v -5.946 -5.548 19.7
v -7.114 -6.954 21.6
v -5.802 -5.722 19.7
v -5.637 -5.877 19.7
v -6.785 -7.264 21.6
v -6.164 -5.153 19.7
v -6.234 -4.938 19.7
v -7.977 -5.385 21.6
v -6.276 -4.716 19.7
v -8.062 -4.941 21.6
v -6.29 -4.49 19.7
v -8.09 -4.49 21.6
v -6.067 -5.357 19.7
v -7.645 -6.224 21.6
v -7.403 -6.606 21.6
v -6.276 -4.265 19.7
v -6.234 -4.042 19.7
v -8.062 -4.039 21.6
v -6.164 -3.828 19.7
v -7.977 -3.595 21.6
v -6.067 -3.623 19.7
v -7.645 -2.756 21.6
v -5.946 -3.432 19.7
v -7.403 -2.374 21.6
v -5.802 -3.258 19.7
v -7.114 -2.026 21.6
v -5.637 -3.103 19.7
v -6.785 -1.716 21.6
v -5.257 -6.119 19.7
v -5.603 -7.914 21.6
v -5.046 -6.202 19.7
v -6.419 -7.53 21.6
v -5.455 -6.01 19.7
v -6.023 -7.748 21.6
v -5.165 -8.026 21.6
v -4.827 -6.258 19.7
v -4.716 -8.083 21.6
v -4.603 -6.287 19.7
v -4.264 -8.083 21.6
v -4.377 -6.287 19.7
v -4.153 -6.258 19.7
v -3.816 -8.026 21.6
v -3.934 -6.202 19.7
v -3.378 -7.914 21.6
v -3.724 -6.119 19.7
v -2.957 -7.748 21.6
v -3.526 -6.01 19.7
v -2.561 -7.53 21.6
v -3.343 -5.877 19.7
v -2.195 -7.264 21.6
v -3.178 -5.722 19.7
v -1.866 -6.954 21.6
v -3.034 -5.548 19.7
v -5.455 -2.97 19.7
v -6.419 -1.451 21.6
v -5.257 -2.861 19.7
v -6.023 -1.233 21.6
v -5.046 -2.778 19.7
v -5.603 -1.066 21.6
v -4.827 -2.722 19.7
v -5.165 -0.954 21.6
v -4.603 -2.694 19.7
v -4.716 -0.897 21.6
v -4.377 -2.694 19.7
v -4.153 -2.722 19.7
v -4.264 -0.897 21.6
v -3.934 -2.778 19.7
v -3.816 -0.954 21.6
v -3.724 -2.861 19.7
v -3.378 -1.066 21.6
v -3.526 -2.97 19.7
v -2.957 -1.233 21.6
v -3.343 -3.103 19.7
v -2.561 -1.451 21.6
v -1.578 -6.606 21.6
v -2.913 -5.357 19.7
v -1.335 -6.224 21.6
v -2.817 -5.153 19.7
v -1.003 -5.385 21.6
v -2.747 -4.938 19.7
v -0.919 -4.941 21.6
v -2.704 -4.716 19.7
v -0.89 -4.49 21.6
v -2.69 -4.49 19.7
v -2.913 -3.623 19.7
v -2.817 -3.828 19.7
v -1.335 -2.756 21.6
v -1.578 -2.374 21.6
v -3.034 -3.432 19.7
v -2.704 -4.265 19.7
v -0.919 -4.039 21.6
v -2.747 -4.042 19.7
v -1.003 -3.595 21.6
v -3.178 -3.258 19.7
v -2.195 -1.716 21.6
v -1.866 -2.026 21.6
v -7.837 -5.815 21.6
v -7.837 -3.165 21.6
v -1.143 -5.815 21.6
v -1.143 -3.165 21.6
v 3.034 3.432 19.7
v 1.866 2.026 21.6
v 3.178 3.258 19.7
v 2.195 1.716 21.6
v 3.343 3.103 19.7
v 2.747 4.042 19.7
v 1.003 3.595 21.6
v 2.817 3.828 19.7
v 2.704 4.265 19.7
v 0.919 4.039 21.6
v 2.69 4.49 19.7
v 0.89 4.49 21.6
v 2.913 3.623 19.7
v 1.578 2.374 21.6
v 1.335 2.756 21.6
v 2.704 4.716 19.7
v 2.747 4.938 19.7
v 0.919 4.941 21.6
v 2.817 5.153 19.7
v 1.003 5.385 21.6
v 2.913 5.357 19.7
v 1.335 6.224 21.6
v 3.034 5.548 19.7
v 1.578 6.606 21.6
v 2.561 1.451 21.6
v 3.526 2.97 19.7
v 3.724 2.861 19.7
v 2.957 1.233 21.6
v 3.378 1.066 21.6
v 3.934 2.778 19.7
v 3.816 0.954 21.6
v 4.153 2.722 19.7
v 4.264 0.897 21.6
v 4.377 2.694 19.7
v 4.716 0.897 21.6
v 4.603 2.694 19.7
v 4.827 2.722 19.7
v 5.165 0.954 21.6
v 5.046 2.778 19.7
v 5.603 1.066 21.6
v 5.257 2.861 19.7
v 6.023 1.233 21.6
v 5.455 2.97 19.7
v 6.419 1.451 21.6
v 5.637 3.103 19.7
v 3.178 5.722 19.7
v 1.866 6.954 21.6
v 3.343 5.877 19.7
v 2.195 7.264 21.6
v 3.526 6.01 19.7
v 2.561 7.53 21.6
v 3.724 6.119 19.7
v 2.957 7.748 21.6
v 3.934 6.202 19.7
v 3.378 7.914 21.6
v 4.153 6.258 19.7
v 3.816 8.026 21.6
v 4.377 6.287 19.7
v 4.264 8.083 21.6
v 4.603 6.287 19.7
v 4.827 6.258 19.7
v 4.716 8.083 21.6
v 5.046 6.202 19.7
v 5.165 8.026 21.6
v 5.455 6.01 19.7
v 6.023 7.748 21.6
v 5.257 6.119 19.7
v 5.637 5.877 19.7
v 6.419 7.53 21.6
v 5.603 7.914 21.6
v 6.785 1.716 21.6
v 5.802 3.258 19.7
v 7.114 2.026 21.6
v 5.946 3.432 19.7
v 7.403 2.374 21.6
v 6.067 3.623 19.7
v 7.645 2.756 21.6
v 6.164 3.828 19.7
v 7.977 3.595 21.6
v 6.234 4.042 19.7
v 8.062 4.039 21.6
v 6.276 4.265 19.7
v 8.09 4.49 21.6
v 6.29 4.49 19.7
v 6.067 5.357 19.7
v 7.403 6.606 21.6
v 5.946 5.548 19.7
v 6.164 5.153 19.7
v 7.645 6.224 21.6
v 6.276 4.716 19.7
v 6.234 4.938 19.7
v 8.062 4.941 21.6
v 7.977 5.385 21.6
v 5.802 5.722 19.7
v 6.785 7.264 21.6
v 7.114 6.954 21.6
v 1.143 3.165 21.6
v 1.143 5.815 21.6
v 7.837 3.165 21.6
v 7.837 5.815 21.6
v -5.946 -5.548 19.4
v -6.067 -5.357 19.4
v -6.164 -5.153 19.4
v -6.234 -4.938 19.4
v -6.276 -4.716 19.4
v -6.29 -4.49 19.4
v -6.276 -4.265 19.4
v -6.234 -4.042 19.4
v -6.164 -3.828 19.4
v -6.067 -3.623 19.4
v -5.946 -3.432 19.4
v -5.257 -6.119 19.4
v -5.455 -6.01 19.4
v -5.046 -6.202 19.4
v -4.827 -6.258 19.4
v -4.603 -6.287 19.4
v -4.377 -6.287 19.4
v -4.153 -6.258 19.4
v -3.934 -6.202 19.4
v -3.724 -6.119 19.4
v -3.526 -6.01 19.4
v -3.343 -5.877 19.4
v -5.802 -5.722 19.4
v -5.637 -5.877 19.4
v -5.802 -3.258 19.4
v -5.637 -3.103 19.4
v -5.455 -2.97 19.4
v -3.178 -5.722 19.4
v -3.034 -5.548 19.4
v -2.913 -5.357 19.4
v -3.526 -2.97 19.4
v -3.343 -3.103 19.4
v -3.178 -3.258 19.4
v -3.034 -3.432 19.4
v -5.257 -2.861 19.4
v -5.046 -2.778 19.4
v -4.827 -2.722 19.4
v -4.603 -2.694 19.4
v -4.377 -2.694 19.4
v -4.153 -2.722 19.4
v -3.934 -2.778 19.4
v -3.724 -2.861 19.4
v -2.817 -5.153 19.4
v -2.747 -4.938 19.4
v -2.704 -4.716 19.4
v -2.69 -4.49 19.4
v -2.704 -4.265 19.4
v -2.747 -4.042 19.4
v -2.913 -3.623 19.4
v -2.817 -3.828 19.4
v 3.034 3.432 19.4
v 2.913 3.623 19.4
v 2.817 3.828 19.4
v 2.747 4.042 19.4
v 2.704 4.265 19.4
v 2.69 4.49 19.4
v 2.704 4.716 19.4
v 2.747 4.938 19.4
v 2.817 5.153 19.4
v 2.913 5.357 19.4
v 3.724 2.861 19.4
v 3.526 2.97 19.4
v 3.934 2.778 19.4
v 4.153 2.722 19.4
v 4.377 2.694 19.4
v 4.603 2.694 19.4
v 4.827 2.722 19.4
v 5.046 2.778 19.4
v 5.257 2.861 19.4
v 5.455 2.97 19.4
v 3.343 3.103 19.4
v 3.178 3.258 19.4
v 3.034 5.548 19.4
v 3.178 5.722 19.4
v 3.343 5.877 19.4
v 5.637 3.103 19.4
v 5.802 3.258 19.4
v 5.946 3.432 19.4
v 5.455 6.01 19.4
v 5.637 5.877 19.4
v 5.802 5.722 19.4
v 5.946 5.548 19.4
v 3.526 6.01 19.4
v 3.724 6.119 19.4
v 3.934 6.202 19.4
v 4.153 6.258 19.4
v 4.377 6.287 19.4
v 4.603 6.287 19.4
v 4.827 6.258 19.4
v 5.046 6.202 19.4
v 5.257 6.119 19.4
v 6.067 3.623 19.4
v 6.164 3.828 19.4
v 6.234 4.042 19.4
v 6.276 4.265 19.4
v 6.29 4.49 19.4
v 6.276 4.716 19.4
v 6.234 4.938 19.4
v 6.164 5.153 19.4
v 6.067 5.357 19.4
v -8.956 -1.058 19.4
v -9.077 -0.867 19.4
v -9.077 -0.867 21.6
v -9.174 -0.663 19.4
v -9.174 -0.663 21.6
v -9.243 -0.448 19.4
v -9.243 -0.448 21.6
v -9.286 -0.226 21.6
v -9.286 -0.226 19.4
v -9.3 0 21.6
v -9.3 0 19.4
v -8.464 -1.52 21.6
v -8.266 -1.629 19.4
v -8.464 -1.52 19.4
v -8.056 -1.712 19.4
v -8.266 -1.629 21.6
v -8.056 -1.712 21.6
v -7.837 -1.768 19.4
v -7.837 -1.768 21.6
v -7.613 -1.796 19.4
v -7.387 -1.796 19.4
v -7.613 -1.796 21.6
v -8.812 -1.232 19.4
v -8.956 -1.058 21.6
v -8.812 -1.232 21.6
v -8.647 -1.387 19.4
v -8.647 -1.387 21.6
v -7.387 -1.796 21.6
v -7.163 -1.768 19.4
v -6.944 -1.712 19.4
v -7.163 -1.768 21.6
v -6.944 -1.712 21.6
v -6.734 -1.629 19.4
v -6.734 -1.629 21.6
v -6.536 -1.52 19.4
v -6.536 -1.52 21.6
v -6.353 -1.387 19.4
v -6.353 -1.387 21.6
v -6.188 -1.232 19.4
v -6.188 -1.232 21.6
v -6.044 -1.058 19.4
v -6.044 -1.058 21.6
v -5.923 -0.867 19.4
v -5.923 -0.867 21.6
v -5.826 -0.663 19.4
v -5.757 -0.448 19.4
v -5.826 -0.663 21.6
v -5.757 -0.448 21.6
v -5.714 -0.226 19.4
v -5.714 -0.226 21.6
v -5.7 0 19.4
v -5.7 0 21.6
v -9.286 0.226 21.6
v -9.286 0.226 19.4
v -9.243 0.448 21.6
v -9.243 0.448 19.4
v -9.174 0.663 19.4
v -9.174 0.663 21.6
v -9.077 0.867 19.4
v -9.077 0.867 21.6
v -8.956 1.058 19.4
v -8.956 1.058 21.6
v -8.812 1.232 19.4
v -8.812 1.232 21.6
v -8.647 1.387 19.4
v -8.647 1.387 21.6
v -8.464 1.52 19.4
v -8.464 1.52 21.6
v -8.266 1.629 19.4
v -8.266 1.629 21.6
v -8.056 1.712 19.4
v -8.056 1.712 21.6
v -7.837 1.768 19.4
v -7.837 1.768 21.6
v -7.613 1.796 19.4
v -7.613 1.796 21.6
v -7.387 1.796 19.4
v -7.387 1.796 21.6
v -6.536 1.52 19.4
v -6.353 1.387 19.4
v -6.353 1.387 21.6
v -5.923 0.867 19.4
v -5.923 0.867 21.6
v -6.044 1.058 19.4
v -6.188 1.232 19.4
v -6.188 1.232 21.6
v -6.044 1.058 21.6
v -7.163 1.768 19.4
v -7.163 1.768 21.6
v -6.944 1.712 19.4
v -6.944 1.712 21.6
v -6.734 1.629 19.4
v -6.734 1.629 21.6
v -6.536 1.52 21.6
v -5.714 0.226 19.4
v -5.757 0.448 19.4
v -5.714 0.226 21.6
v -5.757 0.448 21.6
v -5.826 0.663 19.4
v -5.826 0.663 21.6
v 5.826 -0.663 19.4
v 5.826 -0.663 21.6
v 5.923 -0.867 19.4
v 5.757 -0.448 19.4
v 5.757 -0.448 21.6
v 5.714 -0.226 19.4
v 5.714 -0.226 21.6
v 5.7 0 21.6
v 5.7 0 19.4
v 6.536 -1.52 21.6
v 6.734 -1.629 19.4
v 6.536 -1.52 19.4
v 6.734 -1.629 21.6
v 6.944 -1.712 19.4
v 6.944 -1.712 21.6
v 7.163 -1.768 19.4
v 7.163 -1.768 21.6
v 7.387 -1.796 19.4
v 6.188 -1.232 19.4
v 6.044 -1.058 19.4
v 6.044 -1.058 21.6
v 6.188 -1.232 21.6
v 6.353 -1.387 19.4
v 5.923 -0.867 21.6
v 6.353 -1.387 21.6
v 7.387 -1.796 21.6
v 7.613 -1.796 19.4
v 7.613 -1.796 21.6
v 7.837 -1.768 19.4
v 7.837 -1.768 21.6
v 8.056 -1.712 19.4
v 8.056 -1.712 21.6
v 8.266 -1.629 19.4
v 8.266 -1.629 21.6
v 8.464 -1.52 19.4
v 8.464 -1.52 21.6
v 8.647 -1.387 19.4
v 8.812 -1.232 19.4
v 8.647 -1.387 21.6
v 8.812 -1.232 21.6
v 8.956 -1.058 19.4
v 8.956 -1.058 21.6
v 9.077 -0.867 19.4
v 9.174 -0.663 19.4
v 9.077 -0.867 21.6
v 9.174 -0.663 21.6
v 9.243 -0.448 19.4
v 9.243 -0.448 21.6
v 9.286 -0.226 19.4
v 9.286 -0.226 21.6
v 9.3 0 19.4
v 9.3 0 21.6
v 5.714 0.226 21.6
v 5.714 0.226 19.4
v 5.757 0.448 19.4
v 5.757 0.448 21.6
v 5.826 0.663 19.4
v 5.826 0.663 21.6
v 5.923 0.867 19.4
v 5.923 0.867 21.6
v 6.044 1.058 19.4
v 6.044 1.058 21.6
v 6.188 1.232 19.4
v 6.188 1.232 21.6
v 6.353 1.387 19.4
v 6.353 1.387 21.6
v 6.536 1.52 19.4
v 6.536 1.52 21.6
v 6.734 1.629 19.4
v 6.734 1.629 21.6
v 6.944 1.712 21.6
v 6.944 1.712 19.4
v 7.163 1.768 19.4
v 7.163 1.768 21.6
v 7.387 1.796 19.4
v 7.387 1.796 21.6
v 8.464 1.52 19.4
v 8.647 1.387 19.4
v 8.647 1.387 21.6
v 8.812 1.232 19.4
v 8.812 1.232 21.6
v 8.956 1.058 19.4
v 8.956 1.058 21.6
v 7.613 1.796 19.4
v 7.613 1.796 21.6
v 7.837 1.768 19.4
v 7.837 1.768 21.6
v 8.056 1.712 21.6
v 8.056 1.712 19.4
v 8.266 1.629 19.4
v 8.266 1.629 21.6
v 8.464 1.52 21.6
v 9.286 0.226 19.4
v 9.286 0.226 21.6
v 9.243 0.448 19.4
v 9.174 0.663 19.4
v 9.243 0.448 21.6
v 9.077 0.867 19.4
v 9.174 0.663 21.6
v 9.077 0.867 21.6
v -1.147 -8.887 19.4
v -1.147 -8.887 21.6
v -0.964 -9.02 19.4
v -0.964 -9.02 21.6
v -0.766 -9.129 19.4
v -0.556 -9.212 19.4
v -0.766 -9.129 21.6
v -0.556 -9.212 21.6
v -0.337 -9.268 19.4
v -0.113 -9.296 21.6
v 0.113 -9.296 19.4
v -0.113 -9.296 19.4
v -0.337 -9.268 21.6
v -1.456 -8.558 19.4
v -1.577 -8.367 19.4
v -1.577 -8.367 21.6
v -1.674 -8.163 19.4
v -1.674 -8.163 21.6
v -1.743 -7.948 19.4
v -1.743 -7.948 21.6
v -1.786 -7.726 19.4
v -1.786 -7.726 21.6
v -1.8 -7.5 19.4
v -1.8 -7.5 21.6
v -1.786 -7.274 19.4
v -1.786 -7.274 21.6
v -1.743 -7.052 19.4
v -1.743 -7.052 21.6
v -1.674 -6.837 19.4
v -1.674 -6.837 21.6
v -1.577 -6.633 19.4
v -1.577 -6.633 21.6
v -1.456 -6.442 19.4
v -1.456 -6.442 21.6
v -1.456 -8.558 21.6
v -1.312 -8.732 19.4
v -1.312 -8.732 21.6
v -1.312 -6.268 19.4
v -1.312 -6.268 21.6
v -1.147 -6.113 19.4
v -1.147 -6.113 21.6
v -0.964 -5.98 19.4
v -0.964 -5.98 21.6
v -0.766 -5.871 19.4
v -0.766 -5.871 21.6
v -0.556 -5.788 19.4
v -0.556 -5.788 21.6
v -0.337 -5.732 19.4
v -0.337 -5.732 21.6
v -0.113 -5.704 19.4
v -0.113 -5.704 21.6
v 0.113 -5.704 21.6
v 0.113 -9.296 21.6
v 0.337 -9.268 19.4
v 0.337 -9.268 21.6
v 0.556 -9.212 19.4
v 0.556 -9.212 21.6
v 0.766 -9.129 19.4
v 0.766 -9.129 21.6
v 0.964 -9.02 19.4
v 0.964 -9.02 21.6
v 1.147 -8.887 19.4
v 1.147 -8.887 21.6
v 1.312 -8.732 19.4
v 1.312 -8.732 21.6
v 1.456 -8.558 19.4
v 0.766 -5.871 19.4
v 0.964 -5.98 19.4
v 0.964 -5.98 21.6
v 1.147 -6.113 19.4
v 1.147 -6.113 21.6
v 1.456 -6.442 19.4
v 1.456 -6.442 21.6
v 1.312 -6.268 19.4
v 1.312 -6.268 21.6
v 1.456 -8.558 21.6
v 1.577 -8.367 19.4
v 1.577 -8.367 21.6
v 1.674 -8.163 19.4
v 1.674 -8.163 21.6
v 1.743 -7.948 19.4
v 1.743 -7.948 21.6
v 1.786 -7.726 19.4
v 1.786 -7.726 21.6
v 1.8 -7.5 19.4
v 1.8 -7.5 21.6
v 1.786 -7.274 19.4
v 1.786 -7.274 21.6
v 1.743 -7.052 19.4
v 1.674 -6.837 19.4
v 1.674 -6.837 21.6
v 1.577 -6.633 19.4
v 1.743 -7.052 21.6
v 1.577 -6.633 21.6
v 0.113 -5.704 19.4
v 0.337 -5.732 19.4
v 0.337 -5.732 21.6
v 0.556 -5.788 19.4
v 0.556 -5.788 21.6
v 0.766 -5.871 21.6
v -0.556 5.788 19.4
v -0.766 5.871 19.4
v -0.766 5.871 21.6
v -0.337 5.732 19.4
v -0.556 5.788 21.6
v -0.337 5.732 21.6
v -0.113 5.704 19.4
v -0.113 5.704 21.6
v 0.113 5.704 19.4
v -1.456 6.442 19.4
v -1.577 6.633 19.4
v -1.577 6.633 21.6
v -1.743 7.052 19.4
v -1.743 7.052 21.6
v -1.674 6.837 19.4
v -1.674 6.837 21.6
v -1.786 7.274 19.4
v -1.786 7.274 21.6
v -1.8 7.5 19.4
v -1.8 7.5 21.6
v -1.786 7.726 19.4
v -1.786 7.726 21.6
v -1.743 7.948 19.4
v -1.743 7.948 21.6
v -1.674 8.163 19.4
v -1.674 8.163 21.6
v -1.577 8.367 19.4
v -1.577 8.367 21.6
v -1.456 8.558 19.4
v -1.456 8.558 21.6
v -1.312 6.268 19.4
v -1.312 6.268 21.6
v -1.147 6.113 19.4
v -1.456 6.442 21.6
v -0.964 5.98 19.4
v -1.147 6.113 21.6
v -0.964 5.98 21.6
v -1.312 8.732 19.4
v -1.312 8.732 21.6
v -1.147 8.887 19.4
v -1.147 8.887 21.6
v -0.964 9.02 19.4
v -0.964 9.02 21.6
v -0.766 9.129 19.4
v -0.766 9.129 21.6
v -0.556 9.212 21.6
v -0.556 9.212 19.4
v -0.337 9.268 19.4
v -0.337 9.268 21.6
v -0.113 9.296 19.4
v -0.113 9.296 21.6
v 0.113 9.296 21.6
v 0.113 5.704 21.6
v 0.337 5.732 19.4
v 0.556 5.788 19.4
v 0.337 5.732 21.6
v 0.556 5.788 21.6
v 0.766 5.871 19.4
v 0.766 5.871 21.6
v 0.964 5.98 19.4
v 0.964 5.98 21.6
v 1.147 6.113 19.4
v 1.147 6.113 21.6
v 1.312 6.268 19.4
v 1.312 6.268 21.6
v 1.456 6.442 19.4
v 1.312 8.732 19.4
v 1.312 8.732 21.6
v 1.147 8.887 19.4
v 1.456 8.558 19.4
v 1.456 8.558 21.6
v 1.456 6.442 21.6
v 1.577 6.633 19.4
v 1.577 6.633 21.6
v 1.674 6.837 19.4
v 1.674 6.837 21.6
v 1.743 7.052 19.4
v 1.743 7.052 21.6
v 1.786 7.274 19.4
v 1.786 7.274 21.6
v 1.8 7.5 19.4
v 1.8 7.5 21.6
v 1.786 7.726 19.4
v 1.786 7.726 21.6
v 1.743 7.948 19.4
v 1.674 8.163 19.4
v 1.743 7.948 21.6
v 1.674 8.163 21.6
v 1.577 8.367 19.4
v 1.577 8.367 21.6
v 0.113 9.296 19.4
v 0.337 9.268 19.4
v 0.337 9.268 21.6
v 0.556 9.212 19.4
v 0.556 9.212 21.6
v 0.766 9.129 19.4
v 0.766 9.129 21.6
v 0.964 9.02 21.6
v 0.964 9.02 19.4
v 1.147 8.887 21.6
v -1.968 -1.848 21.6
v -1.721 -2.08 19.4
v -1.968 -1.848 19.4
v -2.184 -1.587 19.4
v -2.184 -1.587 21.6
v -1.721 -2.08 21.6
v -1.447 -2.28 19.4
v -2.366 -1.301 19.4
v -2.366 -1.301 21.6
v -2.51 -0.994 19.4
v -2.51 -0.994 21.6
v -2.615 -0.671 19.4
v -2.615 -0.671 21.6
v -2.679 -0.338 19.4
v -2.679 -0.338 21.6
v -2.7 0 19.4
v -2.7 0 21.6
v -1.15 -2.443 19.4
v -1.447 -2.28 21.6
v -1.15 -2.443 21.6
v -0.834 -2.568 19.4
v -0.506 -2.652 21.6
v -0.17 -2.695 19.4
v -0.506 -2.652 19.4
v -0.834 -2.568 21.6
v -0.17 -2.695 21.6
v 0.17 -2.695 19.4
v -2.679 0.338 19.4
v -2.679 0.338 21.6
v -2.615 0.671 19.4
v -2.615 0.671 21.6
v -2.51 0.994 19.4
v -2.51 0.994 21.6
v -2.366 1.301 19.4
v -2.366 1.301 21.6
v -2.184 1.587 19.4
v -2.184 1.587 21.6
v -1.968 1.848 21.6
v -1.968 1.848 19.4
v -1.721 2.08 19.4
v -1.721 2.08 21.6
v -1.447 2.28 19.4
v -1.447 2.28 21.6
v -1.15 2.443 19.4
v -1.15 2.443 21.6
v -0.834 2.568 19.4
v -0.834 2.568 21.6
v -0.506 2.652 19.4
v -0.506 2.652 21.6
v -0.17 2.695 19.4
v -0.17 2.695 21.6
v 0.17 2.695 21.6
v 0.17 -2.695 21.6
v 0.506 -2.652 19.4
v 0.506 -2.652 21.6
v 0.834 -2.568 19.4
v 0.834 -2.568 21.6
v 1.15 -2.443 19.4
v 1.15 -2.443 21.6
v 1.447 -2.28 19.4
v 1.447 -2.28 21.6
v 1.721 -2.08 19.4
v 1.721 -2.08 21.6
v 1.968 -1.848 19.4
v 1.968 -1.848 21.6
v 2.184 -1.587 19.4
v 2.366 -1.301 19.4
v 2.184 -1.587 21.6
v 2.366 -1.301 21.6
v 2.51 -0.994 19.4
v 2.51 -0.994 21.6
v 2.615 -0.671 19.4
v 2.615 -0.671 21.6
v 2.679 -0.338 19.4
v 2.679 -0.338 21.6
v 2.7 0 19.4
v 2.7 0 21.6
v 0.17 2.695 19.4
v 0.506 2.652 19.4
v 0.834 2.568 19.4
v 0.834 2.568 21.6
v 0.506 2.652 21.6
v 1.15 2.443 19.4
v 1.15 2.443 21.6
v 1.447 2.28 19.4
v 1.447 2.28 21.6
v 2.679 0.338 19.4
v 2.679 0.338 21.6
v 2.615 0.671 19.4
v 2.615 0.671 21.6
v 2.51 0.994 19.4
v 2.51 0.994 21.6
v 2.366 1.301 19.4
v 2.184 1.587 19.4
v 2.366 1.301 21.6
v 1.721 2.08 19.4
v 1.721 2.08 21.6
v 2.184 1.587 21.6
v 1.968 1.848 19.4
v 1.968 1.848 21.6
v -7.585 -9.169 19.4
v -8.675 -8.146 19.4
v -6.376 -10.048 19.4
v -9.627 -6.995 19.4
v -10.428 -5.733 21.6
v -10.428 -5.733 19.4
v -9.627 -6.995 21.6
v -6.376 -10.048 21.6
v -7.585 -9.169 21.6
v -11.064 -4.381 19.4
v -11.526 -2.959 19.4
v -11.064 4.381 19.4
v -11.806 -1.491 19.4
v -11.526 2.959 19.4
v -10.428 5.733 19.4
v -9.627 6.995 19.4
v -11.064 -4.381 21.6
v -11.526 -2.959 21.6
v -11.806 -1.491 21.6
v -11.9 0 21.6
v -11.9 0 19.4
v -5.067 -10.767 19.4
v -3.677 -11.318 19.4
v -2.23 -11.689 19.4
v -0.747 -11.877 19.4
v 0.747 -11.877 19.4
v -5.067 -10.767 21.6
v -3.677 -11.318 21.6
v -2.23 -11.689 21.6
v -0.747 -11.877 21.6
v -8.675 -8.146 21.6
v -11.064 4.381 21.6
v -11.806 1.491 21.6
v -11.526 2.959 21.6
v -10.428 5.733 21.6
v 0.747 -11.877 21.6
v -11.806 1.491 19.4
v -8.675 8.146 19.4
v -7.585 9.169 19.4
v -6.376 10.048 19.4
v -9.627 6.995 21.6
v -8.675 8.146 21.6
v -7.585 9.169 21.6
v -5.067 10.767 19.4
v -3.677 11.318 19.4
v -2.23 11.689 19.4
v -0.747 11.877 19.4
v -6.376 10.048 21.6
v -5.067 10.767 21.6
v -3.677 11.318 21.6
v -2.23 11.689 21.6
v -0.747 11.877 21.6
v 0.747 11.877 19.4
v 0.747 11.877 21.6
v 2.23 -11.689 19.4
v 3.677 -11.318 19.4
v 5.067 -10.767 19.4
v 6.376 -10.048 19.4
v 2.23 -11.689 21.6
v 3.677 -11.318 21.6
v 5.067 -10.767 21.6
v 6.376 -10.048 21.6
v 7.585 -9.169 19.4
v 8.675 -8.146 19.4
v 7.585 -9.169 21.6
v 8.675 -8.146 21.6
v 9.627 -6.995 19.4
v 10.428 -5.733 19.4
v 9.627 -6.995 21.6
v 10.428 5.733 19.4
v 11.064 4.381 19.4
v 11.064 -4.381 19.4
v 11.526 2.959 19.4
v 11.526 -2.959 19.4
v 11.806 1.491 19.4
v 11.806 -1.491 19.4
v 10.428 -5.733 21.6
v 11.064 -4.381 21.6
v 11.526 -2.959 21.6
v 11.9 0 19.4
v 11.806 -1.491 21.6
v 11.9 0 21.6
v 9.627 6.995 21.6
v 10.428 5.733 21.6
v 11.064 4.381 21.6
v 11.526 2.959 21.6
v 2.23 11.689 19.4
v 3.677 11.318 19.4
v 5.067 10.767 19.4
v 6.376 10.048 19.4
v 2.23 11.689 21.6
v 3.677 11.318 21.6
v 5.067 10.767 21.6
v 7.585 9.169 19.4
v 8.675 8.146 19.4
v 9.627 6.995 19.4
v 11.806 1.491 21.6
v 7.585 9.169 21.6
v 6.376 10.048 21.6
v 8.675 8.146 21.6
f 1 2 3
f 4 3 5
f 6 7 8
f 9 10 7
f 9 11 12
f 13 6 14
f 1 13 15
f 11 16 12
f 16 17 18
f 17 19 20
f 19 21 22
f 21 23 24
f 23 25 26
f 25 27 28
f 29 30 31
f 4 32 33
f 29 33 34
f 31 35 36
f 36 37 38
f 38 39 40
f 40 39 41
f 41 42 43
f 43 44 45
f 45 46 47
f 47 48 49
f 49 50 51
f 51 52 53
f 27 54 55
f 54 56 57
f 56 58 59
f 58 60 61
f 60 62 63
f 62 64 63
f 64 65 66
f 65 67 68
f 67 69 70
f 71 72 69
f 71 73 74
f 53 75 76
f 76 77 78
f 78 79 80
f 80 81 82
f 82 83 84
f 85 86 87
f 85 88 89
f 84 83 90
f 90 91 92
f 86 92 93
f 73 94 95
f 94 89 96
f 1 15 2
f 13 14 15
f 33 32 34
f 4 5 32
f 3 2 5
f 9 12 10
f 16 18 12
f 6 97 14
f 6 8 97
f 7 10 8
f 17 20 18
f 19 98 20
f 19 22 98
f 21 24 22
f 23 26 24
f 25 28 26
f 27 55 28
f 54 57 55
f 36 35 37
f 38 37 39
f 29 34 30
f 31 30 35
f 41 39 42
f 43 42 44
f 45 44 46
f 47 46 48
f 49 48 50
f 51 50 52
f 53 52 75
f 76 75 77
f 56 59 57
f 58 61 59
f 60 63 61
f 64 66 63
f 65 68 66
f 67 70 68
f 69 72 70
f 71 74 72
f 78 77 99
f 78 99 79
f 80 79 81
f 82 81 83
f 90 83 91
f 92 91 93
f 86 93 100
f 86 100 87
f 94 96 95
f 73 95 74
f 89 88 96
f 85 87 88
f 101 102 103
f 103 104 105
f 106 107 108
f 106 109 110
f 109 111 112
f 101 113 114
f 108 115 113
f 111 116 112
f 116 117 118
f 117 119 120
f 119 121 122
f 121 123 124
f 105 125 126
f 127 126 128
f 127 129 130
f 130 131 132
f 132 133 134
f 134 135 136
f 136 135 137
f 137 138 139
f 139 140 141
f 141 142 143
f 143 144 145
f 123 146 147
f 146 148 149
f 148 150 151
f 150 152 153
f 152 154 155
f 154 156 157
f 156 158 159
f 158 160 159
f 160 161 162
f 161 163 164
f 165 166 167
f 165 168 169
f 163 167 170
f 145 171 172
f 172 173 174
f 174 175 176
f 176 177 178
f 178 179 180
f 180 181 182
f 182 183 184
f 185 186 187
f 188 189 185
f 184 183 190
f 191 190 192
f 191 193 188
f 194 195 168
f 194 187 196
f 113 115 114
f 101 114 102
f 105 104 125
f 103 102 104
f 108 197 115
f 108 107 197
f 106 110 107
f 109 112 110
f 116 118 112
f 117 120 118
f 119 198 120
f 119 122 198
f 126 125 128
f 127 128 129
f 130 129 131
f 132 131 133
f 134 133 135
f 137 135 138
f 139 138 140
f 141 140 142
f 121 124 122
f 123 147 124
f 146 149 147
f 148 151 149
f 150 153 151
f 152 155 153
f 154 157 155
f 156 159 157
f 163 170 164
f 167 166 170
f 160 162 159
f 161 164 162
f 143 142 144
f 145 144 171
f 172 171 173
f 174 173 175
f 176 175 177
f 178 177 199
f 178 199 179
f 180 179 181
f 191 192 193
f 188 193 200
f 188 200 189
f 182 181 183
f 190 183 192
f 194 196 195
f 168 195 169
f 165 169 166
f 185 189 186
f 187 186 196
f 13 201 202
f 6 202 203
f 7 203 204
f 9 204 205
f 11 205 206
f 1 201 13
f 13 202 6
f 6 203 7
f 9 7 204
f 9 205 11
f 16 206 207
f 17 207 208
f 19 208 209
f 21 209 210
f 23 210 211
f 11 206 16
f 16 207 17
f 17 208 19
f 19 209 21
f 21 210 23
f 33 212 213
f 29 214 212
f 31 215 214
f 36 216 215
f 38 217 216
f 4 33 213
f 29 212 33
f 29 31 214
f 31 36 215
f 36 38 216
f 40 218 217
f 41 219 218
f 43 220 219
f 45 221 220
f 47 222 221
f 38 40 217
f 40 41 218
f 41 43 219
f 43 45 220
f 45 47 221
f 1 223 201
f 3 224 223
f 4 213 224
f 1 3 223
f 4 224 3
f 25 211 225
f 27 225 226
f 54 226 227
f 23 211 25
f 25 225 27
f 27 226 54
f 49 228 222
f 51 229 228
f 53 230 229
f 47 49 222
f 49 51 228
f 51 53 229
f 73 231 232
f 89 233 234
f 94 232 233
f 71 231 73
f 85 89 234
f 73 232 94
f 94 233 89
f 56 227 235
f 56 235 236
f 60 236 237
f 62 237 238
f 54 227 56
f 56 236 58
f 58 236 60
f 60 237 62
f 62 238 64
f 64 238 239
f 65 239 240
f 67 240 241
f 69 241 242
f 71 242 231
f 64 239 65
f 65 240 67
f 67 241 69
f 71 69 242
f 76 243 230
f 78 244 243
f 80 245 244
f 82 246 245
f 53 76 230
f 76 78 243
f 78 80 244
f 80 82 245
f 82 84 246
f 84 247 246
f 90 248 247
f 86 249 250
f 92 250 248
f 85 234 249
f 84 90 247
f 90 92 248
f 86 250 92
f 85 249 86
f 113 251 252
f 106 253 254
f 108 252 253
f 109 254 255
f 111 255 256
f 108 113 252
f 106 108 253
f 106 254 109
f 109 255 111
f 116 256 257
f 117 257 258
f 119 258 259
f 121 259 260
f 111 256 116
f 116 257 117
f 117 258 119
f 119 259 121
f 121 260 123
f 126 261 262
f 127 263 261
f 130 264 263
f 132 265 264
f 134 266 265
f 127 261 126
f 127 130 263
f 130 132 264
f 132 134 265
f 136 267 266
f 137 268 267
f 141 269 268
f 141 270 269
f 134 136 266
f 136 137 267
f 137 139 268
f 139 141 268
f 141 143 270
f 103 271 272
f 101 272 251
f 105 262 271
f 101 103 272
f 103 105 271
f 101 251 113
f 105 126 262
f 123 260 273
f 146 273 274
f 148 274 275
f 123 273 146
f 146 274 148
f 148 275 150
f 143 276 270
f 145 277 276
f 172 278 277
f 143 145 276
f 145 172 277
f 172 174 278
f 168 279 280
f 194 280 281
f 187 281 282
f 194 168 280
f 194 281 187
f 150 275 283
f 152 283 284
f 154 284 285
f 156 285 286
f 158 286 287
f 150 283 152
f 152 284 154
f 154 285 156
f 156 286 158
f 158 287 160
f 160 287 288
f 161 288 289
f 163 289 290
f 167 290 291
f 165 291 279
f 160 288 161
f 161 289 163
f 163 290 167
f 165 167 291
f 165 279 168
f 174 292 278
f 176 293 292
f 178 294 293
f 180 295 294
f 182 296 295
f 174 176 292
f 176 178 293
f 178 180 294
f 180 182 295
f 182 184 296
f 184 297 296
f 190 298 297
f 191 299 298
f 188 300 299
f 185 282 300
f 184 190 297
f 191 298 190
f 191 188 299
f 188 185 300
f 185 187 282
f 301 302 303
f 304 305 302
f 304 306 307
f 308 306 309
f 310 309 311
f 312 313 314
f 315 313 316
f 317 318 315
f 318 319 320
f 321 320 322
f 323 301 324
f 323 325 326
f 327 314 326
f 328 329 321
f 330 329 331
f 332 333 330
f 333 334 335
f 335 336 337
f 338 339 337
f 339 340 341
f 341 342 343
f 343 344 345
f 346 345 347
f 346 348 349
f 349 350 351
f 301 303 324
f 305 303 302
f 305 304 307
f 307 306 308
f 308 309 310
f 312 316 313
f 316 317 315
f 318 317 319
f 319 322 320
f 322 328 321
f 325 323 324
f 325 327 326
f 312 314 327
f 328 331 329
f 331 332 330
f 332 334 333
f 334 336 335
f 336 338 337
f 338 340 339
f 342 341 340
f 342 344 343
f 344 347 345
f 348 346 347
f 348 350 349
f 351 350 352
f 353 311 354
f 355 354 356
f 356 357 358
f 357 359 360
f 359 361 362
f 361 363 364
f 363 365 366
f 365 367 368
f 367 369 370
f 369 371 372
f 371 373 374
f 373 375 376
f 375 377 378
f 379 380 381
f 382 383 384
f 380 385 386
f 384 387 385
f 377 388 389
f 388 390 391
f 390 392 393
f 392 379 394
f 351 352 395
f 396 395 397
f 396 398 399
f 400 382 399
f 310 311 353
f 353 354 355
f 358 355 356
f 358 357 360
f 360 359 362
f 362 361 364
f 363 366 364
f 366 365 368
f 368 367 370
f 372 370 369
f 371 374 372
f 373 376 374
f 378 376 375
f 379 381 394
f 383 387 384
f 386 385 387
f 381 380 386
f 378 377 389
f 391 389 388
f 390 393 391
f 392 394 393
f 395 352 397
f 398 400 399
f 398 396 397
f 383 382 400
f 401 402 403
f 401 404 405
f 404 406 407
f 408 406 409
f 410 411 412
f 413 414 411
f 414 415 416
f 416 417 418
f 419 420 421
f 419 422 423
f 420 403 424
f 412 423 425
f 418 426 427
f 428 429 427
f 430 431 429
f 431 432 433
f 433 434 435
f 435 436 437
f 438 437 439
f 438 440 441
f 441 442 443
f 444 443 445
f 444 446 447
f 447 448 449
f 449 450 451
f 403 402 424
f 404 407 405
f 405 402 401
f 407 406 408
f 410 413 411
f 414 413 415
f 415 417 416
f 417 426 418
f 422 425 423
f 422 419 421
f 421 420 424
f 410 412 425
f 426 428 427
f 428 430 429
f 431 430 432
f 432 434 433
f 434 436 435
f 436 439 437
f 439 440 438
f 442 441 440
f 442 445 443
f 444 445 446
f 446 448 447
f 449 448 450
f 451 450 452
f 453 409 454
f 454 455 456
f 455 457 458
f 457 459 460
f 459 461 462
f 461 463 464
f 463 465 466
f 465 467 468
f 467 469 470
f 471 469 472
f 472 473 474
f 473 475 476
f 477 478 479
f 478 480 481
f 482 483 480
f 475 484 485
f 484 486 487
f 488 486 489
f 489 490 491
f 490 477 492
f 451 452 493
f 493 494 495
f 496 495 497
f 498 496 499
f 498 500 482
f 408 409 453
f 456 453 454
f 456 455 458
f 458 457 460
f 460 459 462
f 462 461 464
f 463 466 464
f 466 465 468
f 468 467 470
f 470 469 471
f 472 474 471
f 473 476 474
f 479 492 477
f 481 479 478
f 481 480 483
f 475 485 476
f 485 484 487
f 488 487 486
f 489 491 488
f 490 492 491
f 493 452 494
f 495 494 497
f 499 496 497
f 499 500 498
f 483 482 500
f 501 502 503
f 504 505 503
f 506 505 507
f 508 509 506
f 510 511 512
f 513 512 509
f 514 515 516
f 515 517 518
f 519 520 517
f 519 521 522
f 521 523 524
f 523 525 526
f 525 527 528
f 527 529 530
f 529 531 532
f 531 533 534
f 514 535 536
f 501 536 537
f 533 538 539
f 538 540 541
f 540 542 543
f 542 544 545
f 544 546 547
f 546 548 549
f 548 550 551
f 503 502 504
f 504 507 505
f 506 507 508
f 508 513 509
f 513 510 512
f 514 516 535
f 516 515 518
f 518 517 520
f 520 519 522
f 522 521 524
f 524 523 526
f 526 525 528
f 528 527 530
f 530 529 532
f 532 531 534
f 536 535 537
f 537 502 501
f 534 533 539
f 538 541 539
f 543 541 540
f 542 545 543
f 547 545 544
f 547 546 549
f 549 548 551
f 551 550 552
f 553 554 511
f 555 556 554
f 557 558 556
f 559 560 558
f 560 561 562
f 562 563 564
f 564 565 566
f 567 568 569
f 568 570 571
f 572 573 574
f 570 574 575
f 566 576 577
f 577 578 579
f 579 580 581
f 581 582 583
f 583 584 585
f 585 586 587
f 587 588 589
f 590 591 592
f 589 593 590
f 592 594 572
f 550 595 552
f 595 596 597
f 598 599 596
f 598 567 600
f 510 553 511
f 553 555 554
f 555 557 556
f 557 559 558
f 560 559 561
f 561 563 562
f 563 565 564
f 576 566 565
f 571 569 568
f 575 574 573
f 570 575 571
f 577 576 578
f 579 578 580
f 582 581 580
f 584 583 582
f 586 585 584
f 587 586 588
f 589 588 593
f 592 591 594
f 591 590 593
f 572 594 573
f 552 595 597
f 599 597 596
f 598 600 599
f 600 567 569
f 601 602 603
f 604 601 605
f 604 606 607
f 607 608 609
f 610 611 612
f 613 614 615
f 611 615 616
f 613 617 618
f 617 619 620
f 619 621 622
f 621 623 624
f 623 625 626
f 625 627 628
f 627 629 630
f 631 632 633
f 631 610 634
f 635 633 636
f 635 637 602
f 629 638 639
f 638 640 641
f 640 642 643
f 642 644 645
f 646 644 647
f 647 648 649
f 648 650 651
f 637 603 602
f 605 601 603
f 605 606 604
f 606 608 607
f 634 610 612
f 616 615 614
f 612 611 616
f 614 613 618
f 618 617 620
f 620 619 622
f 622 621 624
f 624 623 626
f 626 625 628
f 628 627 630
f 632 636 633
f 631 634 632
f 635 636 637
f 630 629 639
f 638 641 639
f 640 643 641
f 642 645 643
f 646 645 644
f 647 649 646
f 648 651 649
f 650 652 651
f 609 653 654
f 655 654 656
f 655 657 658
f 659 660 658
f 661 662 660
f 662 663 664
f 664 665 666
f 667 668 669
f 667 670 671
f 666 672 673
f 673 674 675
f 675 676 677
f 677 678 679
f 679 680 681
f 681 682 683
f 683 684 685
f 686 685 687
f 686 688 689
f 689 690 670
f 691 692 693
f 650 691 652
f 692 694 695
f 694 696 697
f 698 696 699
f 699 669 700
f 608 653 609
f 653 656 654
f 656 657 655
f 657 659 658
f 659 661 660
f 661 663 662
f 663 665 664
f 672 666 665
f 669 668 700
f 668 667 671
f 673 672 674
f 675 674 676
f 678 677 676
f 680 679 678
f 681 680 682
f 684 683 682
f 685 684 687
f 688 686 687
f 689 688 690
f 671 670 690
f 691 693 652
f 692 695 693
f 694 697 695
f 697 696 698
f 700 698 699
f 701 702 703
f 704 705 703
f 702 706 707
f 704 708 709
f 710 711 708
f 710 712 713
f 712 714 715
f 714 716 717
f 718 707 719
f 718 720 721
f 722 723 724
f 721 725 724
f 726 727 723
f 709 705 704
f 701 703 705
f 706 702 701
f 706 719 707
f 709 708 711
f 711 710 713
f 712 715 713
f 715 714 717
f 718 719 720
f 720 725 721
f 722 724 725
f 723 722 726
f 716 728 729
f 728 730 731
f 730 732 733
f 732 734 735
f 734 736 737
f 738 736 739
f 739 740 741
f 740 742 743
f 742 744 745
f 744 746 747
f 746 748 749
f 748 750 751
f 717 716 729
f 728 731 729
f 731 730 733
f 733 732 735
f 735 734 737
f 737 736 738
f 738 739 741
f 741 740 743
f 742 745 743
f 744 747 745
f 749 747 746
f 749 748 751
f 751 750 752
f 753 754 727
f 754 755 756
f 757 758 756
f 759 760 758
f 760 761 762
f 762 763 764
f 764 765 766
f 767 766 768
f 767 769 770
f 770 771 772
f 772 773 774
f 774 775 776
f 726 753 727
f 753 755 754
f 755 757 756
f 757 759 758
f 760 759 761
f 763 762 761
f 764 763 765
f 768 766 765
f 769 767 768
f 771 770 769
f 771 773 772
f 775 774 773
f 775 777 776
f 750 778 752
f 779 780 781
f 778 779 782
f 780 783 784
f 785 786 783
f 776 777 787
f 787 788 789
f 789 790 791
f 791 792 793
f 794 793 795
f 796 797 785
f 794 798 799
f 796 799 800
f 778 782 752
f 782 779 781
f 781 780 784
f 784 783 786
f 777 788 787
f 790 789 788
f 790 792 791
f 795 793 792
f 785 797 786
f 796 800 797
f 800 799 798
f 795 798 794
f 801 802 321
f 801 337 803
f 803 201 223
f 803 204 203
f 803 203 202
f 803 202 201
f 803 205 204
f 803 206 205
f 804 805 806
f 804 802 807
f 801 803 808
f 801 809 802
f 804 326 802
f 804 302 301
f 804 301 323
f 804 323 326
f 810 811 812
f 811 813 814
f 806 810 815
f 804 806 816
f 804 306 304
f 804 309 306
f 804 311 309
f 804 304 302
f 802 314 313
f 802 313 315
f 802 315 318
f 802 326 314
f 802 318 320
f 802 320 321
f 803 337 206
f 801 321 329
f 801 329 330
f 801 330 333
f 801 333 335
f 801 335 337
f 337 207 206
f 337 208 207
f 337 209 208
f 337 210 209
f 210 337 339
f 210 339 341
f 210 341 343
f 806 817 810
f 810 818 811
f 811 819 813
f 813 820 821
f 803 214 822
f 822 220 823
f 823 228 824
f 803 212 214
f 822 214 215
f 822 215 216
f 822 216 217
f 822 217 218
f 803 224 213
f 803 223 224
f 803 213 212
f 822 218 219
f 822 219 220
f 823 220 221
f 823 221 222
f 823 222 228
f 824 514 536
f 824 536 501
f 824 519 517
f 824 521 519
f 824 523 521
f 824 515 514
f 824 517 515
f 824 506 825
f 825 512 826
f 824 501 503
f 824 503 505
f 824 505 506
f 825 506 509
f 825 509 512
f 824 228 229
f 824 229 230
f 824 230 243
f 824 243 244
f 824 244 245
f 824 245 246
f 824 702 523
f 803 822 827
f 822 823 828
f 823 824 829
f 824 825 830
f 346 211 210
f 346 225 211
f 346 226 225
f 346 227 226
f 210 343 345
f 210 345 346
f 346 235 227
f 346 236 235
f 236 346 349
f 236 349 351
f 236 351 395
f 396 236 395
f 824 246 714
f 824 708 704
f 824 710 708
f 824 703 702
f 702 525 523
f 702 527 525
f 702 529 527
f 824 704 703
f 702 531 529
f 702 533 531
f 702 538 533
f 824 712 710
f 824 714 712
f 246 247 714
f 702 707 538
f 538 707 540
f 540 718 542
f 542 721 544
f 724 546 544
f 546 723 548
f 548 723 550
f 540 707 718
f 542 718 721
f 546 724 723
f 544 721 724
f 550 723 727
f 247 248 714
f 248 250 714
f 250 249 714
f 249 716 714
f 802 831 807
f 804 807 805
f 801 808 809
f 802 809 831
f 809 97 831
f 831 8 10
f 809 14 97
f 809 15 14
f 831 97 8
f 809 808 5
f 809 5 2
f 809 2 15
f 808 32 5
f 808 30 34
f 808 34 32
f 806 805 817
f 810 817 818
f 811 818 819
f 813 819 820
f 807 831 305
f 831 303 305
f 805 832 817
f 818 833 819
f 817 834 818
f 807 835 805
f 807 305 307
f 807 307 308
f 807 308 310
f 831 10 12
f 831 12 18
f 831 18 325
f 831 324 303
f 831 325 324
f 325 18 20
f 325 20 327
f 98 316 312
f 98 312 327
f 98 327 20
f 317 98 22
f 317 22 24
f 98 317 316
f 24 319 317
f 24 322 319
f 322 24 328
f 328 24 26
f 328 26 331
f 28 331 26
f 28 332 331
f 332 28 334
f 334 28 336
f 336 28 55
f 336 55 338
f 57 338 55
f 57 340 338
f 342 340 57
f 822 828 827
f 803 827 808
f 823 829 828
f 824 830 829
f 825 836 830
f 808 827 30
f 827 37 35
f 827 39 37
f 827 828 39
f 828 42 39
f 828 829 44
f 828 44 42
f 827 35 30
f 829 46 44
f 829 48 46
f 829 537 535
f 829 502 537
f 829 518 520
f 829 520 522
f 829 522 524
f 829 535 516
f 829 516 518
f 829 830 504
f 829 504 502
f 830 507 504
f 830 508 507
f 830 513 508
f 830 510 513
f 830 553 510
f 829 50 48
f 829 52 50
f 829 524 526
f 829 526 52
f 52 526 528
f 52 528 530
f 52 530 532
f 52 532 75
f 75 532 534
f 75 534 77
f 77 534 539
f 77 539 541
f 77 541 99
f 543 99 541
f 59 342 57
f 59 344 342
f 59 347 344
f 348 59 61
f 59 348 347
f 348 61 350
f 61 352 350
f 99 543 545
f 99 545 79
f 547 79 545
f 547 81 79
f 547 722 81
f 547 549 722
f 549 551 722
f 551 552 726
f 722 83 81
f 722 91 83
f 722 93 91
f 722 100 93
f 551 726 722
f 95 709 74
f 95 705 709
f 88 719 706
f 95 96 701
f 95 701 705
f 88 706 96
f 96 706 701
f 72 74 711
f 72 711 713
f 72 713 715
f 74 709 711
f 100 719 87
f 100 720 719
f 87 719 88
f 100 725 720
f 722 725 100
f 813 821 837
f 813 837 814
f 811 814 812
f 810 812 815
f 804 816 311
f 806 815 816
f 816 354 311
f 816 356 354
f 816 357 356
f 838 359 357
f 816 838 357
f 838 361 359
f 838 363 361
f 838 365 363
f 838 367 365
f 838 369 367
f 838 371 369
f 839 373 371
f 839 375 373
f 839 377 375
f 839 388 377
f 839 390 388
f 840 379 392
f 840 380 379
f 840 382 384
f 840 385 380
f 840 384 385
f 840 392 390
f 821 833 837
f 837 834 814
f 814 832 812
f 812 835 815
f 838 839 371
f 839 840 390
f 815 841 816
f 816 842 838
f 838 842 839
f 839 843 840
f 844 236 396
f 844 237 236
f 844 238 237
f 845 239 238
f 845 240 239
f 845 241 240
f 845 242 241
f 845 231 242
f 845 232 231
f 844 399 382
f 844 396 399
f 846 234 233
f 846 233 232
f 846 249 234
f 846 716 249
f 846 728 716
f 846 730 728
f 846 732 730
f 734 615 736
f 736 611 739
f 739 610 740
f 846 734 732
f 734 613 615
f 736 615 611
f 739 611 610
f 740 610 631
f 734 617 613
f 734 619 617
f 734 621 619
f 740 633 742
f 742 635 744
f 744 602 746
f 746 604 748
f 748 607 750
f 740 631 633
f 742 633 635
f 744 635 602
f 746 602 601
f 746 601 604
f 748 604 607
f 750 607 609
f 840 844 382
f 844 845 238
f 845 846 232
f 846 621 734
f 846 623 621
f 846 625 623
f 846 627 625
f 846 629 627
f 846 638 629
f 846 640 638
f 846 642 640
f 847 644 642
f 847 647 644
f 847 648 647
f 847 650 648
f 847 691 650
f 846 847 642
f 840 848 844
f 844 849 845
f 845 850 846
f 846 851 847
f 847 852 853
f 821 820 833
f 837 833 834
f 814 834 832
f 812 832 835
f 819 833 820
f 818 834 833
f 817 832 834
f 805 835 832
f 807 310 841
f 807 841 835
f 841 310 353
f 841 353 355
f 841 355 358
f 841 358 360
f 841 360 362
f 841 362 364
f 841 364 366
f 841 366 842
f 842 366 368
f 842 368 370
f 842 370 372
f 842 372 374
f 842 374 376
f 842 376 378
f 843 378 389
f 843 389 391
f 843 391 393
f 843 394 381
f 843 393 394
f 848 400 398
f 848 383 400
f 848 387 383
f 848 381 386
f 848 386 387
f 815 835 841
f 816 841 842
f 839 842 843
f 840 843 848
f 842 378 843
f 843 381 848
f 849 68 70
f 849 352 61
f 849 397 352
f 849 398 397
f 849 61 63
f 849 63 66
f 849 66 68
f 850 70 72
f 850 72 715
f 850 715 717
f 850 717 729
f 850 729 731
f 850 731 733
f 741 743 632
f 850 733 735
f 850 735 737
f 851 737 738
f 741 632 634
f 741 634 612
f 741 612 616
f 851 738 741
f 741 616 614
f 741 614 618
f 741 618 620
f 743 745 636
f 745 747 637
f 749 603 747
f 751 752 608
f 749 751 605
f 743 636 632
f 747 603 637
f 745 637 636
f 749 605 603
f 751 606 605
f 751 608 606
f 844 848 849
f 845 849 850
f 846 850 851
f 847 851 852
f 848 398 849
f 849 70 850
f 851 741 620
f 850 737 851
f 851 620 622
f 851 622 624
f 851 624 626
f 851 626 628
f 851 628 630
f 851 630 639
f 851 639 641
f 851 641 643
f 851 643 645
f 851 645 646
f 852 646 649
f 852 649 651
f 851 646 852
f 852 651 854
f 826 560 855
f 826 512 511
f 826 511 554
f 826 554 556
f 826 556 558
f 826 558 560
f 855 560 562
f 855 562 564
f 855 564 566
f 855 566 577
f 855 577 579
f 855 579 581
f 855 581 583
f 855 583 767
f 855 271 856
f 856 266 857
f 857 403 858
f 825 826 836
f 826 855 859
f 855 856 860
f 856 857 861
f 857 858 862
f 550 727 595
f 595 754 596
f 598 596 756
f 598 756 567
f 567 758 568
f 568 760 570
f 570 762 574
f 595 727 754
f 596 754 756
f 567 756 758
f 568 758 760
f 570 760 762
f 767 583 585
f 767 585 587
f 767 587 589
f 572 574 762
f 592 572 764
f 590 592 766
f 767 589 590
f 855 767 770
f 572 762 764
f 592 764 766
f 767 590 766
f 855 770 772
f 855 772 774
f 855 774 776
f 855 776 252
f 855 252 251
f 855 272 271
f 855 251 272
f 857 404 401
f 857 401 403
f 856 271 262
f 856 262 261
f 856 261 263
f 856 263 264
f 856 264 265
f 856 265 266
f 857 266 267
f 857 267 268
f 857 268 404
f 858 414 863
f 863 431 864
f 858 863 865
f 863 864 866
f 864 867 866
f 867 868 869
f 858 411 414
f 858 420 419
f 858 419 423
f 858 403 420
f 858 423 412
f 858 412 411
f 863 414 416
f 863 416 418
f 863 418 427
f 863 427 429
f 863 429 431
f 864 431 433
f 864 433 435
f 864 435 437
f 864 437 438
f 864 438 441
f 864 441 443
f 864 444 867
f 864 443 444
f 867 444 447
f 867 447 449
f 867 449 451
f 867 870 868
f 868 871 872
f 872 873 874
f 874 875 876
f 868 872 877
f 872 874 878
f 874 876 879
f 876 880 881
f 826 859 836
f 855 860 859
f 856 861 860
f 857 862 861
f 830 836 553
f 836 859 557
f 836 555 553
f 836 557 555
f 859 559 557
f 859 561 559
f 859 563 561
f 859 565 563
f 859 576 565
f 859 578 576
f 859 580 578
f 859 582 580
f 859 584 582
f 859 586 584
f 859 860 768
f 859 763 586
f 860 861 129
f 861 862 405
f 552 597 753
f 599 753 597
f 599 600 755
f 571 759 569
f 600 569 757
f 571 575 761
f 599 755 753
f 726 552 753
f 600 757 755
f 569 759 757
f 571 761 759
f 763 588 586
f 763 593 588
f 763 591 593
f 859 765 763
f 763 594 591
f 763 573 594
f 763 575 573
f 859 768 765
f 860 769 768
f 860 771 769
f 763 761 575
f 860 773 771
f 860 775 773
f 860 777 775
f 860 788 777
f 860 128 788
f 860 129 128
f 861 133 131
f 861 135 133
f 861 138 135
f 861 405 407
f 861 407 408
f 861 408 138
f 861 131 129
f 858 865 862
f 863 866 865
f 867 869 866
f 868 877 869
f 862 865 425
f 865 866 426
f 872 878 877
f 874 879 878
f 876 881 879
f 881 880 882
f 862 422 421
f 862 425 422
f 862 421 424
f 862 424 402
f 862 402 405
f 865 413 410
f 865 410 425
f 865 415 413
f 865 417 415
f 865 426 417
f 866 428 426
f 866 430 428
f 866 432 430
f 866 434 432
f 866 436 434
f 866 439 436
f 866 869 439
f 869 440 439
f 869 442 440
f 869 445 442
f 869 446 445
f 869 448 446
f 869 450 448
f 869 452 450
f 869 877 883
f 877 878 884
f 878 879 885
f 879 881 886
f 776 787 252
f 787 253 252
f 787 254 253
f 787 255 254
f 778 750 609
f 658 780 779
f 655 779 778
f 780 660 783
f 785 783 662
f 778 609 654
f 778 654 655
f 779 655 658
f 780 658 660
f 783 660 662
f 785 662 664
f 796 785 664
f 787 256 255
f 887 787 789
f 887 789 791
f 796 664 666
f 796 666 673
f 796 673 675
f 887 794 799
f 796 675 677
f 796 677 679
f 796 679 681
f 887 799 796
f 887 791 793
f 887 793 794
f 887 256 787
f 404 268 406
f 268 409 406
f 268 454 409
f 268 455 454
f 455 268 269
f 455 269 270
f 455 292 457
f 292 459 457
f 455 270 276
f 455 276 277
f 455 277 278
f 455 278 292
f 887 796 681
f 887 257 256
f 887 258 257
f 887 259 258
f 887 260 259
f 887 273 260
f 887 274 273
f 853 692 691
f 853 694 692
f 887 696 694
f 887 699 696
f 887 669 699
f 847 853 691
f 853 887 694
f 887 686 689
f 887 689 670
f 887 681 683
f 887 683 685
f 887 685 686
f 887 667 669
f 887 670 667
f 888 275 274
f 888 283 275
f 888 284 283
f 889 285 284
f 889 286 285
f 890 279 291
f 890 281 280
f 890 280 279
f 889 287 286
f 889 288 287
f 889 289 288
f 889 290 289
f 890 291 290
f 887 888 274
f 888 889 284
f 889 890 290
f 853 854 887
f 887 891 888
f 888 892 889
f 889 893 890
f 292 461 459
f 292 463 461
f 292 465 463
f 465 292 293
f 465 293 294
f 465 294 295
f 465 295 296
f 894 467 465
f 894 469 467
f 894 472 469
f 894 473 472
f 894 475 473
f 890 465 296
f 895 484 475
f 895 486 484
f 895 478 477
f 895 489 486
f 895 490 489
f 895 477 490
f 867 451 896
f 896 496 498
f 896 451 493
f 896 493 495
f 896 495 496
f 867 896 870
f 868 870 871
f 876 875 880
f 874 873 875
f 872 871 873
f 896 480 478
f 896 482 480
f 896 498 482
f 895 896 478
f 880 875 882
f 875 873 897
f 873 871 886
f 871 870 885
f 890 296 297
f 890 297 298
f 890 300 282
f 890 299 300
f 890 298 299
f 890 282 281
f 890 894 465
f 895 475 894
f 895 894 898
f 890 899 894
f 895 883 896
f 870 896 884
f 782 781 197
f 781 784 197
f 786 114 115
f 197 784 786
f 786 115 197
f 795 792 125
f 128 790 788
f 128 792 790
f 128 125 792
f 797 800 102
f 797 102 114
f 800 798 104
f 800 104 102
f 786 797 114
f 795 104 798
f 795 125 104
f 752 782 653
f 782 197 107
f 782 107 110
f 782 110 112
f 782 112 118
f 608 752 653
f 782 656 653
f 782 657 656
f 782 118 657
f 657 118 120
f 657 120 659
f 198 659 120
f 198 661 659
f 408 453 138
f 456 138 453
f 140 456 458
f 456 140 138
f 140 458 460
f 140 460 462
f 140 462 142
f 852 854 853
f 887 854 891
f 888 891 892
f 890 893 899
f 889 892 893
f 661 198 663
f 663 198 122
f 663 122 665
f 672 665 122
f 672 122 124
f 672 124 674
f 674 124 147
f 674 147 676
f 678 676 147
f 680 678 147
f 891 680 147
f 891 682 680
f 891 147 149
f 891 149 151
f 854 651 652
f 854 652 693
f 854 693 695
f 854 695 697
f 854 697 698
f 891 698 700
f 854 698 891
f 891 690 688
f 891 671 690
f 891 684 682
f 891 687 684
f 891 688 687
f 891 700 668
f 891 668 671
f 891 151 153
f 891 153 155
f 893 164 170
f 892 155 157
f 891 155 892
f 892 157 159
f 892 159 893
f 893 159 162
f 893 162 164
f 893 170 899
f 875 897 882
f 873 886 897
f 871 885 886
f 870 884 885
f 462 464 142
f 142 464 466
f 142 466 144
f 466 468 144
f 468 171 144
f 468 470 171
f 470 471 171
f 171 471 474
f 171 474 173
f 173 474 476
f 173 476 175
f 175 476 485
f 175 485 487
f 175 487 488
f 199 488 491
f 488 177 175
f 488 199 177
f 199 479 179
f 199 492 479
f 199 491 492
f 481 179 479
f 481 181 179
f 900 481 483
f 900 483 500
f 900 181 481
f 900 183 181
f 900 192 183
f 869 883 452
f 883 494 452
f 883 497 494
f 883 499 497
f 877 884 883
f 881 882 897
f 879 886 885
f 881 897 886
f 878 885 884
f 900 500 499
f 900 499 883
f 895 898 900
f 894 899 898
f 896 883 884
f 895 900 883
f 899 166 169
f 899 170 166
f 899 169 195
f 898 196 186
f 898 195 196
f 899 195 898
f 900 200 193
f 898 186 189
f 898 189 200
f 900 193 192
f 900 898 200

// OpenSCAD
$fn = 50;

difference() {
	union() {
		translate(v = [0, 0, 19.4]) {
			cylinder(h = 2.2, r = 11.9);
		}
	}
	union() {
		translate(v = [-4.490128060534576, -4.490128060534576, 21.6]) {
			rotate(a = [0, 0, 0]) {
				difference() {
					union() {
						translate(v = [0, 0, -10.0]) {
							cylinder(h = 10, r = 1.5);
						}
						translate(v = [0, 0, -1.9]) {
							cylinder(h = 1.9, r1 = 1.8, r2 = 3.6);
						}
						cylinder(h = 250, r = 3.6);
						translate(v = [0, 0, -10.0]) {
							cylinder(h = 10, r = 1.8);
						}
						translate(v = [0, 0, -10.0]) {
							cylinder(h = 10, r = 1.5);
						}
					}
					union();
				}
			}
		}
		translate(v = [4.490128060534576, 4.490128060534576, 21.6]) {
			rotate(a = [0, 0, 0]) {
				difference() {
					union() {
						translate(v = [0, 0, -10.0]) {
							cylinder(h = 10, r = 1.5);
						}
						translate(v = [0, 0, -1.9]) {
							cylinder(h = 1.9, r1 = 1.8, r2 = 3.6);
						}
						cylinder(h = 250, r = 3.6);
						translate(v = [0, 0, -10.0]) {
							cylinder(h = 10, r = 1.8);
						}
						translate(v = [0, 0, -10.0]) {
							cylinder(h = 10, r = 1.5);
						}
					}
					union();
				}
			}
		}
		translate(v = [-7.5, 0, 18.4]) {
			cylinder(h = 4.2, r = 1.8);
		}
		translate(v = [7.5, 0, 18.4]) {
			cylinder(h = 4.2, r = 1.8);
		}
		translate(v = [0, -7.5, 18.4]) {
			cylinder(h = 4.2, r = 1.8);
		}
		translate(v = [0, 7.5, 18.4]) {
			cylinder(h = 4.2, r = 1.8);
		}
		translate(v = [0, 0, 19.2]) {
			cylinder(h = 4.2, r = 2.7);
		}
	}
}
